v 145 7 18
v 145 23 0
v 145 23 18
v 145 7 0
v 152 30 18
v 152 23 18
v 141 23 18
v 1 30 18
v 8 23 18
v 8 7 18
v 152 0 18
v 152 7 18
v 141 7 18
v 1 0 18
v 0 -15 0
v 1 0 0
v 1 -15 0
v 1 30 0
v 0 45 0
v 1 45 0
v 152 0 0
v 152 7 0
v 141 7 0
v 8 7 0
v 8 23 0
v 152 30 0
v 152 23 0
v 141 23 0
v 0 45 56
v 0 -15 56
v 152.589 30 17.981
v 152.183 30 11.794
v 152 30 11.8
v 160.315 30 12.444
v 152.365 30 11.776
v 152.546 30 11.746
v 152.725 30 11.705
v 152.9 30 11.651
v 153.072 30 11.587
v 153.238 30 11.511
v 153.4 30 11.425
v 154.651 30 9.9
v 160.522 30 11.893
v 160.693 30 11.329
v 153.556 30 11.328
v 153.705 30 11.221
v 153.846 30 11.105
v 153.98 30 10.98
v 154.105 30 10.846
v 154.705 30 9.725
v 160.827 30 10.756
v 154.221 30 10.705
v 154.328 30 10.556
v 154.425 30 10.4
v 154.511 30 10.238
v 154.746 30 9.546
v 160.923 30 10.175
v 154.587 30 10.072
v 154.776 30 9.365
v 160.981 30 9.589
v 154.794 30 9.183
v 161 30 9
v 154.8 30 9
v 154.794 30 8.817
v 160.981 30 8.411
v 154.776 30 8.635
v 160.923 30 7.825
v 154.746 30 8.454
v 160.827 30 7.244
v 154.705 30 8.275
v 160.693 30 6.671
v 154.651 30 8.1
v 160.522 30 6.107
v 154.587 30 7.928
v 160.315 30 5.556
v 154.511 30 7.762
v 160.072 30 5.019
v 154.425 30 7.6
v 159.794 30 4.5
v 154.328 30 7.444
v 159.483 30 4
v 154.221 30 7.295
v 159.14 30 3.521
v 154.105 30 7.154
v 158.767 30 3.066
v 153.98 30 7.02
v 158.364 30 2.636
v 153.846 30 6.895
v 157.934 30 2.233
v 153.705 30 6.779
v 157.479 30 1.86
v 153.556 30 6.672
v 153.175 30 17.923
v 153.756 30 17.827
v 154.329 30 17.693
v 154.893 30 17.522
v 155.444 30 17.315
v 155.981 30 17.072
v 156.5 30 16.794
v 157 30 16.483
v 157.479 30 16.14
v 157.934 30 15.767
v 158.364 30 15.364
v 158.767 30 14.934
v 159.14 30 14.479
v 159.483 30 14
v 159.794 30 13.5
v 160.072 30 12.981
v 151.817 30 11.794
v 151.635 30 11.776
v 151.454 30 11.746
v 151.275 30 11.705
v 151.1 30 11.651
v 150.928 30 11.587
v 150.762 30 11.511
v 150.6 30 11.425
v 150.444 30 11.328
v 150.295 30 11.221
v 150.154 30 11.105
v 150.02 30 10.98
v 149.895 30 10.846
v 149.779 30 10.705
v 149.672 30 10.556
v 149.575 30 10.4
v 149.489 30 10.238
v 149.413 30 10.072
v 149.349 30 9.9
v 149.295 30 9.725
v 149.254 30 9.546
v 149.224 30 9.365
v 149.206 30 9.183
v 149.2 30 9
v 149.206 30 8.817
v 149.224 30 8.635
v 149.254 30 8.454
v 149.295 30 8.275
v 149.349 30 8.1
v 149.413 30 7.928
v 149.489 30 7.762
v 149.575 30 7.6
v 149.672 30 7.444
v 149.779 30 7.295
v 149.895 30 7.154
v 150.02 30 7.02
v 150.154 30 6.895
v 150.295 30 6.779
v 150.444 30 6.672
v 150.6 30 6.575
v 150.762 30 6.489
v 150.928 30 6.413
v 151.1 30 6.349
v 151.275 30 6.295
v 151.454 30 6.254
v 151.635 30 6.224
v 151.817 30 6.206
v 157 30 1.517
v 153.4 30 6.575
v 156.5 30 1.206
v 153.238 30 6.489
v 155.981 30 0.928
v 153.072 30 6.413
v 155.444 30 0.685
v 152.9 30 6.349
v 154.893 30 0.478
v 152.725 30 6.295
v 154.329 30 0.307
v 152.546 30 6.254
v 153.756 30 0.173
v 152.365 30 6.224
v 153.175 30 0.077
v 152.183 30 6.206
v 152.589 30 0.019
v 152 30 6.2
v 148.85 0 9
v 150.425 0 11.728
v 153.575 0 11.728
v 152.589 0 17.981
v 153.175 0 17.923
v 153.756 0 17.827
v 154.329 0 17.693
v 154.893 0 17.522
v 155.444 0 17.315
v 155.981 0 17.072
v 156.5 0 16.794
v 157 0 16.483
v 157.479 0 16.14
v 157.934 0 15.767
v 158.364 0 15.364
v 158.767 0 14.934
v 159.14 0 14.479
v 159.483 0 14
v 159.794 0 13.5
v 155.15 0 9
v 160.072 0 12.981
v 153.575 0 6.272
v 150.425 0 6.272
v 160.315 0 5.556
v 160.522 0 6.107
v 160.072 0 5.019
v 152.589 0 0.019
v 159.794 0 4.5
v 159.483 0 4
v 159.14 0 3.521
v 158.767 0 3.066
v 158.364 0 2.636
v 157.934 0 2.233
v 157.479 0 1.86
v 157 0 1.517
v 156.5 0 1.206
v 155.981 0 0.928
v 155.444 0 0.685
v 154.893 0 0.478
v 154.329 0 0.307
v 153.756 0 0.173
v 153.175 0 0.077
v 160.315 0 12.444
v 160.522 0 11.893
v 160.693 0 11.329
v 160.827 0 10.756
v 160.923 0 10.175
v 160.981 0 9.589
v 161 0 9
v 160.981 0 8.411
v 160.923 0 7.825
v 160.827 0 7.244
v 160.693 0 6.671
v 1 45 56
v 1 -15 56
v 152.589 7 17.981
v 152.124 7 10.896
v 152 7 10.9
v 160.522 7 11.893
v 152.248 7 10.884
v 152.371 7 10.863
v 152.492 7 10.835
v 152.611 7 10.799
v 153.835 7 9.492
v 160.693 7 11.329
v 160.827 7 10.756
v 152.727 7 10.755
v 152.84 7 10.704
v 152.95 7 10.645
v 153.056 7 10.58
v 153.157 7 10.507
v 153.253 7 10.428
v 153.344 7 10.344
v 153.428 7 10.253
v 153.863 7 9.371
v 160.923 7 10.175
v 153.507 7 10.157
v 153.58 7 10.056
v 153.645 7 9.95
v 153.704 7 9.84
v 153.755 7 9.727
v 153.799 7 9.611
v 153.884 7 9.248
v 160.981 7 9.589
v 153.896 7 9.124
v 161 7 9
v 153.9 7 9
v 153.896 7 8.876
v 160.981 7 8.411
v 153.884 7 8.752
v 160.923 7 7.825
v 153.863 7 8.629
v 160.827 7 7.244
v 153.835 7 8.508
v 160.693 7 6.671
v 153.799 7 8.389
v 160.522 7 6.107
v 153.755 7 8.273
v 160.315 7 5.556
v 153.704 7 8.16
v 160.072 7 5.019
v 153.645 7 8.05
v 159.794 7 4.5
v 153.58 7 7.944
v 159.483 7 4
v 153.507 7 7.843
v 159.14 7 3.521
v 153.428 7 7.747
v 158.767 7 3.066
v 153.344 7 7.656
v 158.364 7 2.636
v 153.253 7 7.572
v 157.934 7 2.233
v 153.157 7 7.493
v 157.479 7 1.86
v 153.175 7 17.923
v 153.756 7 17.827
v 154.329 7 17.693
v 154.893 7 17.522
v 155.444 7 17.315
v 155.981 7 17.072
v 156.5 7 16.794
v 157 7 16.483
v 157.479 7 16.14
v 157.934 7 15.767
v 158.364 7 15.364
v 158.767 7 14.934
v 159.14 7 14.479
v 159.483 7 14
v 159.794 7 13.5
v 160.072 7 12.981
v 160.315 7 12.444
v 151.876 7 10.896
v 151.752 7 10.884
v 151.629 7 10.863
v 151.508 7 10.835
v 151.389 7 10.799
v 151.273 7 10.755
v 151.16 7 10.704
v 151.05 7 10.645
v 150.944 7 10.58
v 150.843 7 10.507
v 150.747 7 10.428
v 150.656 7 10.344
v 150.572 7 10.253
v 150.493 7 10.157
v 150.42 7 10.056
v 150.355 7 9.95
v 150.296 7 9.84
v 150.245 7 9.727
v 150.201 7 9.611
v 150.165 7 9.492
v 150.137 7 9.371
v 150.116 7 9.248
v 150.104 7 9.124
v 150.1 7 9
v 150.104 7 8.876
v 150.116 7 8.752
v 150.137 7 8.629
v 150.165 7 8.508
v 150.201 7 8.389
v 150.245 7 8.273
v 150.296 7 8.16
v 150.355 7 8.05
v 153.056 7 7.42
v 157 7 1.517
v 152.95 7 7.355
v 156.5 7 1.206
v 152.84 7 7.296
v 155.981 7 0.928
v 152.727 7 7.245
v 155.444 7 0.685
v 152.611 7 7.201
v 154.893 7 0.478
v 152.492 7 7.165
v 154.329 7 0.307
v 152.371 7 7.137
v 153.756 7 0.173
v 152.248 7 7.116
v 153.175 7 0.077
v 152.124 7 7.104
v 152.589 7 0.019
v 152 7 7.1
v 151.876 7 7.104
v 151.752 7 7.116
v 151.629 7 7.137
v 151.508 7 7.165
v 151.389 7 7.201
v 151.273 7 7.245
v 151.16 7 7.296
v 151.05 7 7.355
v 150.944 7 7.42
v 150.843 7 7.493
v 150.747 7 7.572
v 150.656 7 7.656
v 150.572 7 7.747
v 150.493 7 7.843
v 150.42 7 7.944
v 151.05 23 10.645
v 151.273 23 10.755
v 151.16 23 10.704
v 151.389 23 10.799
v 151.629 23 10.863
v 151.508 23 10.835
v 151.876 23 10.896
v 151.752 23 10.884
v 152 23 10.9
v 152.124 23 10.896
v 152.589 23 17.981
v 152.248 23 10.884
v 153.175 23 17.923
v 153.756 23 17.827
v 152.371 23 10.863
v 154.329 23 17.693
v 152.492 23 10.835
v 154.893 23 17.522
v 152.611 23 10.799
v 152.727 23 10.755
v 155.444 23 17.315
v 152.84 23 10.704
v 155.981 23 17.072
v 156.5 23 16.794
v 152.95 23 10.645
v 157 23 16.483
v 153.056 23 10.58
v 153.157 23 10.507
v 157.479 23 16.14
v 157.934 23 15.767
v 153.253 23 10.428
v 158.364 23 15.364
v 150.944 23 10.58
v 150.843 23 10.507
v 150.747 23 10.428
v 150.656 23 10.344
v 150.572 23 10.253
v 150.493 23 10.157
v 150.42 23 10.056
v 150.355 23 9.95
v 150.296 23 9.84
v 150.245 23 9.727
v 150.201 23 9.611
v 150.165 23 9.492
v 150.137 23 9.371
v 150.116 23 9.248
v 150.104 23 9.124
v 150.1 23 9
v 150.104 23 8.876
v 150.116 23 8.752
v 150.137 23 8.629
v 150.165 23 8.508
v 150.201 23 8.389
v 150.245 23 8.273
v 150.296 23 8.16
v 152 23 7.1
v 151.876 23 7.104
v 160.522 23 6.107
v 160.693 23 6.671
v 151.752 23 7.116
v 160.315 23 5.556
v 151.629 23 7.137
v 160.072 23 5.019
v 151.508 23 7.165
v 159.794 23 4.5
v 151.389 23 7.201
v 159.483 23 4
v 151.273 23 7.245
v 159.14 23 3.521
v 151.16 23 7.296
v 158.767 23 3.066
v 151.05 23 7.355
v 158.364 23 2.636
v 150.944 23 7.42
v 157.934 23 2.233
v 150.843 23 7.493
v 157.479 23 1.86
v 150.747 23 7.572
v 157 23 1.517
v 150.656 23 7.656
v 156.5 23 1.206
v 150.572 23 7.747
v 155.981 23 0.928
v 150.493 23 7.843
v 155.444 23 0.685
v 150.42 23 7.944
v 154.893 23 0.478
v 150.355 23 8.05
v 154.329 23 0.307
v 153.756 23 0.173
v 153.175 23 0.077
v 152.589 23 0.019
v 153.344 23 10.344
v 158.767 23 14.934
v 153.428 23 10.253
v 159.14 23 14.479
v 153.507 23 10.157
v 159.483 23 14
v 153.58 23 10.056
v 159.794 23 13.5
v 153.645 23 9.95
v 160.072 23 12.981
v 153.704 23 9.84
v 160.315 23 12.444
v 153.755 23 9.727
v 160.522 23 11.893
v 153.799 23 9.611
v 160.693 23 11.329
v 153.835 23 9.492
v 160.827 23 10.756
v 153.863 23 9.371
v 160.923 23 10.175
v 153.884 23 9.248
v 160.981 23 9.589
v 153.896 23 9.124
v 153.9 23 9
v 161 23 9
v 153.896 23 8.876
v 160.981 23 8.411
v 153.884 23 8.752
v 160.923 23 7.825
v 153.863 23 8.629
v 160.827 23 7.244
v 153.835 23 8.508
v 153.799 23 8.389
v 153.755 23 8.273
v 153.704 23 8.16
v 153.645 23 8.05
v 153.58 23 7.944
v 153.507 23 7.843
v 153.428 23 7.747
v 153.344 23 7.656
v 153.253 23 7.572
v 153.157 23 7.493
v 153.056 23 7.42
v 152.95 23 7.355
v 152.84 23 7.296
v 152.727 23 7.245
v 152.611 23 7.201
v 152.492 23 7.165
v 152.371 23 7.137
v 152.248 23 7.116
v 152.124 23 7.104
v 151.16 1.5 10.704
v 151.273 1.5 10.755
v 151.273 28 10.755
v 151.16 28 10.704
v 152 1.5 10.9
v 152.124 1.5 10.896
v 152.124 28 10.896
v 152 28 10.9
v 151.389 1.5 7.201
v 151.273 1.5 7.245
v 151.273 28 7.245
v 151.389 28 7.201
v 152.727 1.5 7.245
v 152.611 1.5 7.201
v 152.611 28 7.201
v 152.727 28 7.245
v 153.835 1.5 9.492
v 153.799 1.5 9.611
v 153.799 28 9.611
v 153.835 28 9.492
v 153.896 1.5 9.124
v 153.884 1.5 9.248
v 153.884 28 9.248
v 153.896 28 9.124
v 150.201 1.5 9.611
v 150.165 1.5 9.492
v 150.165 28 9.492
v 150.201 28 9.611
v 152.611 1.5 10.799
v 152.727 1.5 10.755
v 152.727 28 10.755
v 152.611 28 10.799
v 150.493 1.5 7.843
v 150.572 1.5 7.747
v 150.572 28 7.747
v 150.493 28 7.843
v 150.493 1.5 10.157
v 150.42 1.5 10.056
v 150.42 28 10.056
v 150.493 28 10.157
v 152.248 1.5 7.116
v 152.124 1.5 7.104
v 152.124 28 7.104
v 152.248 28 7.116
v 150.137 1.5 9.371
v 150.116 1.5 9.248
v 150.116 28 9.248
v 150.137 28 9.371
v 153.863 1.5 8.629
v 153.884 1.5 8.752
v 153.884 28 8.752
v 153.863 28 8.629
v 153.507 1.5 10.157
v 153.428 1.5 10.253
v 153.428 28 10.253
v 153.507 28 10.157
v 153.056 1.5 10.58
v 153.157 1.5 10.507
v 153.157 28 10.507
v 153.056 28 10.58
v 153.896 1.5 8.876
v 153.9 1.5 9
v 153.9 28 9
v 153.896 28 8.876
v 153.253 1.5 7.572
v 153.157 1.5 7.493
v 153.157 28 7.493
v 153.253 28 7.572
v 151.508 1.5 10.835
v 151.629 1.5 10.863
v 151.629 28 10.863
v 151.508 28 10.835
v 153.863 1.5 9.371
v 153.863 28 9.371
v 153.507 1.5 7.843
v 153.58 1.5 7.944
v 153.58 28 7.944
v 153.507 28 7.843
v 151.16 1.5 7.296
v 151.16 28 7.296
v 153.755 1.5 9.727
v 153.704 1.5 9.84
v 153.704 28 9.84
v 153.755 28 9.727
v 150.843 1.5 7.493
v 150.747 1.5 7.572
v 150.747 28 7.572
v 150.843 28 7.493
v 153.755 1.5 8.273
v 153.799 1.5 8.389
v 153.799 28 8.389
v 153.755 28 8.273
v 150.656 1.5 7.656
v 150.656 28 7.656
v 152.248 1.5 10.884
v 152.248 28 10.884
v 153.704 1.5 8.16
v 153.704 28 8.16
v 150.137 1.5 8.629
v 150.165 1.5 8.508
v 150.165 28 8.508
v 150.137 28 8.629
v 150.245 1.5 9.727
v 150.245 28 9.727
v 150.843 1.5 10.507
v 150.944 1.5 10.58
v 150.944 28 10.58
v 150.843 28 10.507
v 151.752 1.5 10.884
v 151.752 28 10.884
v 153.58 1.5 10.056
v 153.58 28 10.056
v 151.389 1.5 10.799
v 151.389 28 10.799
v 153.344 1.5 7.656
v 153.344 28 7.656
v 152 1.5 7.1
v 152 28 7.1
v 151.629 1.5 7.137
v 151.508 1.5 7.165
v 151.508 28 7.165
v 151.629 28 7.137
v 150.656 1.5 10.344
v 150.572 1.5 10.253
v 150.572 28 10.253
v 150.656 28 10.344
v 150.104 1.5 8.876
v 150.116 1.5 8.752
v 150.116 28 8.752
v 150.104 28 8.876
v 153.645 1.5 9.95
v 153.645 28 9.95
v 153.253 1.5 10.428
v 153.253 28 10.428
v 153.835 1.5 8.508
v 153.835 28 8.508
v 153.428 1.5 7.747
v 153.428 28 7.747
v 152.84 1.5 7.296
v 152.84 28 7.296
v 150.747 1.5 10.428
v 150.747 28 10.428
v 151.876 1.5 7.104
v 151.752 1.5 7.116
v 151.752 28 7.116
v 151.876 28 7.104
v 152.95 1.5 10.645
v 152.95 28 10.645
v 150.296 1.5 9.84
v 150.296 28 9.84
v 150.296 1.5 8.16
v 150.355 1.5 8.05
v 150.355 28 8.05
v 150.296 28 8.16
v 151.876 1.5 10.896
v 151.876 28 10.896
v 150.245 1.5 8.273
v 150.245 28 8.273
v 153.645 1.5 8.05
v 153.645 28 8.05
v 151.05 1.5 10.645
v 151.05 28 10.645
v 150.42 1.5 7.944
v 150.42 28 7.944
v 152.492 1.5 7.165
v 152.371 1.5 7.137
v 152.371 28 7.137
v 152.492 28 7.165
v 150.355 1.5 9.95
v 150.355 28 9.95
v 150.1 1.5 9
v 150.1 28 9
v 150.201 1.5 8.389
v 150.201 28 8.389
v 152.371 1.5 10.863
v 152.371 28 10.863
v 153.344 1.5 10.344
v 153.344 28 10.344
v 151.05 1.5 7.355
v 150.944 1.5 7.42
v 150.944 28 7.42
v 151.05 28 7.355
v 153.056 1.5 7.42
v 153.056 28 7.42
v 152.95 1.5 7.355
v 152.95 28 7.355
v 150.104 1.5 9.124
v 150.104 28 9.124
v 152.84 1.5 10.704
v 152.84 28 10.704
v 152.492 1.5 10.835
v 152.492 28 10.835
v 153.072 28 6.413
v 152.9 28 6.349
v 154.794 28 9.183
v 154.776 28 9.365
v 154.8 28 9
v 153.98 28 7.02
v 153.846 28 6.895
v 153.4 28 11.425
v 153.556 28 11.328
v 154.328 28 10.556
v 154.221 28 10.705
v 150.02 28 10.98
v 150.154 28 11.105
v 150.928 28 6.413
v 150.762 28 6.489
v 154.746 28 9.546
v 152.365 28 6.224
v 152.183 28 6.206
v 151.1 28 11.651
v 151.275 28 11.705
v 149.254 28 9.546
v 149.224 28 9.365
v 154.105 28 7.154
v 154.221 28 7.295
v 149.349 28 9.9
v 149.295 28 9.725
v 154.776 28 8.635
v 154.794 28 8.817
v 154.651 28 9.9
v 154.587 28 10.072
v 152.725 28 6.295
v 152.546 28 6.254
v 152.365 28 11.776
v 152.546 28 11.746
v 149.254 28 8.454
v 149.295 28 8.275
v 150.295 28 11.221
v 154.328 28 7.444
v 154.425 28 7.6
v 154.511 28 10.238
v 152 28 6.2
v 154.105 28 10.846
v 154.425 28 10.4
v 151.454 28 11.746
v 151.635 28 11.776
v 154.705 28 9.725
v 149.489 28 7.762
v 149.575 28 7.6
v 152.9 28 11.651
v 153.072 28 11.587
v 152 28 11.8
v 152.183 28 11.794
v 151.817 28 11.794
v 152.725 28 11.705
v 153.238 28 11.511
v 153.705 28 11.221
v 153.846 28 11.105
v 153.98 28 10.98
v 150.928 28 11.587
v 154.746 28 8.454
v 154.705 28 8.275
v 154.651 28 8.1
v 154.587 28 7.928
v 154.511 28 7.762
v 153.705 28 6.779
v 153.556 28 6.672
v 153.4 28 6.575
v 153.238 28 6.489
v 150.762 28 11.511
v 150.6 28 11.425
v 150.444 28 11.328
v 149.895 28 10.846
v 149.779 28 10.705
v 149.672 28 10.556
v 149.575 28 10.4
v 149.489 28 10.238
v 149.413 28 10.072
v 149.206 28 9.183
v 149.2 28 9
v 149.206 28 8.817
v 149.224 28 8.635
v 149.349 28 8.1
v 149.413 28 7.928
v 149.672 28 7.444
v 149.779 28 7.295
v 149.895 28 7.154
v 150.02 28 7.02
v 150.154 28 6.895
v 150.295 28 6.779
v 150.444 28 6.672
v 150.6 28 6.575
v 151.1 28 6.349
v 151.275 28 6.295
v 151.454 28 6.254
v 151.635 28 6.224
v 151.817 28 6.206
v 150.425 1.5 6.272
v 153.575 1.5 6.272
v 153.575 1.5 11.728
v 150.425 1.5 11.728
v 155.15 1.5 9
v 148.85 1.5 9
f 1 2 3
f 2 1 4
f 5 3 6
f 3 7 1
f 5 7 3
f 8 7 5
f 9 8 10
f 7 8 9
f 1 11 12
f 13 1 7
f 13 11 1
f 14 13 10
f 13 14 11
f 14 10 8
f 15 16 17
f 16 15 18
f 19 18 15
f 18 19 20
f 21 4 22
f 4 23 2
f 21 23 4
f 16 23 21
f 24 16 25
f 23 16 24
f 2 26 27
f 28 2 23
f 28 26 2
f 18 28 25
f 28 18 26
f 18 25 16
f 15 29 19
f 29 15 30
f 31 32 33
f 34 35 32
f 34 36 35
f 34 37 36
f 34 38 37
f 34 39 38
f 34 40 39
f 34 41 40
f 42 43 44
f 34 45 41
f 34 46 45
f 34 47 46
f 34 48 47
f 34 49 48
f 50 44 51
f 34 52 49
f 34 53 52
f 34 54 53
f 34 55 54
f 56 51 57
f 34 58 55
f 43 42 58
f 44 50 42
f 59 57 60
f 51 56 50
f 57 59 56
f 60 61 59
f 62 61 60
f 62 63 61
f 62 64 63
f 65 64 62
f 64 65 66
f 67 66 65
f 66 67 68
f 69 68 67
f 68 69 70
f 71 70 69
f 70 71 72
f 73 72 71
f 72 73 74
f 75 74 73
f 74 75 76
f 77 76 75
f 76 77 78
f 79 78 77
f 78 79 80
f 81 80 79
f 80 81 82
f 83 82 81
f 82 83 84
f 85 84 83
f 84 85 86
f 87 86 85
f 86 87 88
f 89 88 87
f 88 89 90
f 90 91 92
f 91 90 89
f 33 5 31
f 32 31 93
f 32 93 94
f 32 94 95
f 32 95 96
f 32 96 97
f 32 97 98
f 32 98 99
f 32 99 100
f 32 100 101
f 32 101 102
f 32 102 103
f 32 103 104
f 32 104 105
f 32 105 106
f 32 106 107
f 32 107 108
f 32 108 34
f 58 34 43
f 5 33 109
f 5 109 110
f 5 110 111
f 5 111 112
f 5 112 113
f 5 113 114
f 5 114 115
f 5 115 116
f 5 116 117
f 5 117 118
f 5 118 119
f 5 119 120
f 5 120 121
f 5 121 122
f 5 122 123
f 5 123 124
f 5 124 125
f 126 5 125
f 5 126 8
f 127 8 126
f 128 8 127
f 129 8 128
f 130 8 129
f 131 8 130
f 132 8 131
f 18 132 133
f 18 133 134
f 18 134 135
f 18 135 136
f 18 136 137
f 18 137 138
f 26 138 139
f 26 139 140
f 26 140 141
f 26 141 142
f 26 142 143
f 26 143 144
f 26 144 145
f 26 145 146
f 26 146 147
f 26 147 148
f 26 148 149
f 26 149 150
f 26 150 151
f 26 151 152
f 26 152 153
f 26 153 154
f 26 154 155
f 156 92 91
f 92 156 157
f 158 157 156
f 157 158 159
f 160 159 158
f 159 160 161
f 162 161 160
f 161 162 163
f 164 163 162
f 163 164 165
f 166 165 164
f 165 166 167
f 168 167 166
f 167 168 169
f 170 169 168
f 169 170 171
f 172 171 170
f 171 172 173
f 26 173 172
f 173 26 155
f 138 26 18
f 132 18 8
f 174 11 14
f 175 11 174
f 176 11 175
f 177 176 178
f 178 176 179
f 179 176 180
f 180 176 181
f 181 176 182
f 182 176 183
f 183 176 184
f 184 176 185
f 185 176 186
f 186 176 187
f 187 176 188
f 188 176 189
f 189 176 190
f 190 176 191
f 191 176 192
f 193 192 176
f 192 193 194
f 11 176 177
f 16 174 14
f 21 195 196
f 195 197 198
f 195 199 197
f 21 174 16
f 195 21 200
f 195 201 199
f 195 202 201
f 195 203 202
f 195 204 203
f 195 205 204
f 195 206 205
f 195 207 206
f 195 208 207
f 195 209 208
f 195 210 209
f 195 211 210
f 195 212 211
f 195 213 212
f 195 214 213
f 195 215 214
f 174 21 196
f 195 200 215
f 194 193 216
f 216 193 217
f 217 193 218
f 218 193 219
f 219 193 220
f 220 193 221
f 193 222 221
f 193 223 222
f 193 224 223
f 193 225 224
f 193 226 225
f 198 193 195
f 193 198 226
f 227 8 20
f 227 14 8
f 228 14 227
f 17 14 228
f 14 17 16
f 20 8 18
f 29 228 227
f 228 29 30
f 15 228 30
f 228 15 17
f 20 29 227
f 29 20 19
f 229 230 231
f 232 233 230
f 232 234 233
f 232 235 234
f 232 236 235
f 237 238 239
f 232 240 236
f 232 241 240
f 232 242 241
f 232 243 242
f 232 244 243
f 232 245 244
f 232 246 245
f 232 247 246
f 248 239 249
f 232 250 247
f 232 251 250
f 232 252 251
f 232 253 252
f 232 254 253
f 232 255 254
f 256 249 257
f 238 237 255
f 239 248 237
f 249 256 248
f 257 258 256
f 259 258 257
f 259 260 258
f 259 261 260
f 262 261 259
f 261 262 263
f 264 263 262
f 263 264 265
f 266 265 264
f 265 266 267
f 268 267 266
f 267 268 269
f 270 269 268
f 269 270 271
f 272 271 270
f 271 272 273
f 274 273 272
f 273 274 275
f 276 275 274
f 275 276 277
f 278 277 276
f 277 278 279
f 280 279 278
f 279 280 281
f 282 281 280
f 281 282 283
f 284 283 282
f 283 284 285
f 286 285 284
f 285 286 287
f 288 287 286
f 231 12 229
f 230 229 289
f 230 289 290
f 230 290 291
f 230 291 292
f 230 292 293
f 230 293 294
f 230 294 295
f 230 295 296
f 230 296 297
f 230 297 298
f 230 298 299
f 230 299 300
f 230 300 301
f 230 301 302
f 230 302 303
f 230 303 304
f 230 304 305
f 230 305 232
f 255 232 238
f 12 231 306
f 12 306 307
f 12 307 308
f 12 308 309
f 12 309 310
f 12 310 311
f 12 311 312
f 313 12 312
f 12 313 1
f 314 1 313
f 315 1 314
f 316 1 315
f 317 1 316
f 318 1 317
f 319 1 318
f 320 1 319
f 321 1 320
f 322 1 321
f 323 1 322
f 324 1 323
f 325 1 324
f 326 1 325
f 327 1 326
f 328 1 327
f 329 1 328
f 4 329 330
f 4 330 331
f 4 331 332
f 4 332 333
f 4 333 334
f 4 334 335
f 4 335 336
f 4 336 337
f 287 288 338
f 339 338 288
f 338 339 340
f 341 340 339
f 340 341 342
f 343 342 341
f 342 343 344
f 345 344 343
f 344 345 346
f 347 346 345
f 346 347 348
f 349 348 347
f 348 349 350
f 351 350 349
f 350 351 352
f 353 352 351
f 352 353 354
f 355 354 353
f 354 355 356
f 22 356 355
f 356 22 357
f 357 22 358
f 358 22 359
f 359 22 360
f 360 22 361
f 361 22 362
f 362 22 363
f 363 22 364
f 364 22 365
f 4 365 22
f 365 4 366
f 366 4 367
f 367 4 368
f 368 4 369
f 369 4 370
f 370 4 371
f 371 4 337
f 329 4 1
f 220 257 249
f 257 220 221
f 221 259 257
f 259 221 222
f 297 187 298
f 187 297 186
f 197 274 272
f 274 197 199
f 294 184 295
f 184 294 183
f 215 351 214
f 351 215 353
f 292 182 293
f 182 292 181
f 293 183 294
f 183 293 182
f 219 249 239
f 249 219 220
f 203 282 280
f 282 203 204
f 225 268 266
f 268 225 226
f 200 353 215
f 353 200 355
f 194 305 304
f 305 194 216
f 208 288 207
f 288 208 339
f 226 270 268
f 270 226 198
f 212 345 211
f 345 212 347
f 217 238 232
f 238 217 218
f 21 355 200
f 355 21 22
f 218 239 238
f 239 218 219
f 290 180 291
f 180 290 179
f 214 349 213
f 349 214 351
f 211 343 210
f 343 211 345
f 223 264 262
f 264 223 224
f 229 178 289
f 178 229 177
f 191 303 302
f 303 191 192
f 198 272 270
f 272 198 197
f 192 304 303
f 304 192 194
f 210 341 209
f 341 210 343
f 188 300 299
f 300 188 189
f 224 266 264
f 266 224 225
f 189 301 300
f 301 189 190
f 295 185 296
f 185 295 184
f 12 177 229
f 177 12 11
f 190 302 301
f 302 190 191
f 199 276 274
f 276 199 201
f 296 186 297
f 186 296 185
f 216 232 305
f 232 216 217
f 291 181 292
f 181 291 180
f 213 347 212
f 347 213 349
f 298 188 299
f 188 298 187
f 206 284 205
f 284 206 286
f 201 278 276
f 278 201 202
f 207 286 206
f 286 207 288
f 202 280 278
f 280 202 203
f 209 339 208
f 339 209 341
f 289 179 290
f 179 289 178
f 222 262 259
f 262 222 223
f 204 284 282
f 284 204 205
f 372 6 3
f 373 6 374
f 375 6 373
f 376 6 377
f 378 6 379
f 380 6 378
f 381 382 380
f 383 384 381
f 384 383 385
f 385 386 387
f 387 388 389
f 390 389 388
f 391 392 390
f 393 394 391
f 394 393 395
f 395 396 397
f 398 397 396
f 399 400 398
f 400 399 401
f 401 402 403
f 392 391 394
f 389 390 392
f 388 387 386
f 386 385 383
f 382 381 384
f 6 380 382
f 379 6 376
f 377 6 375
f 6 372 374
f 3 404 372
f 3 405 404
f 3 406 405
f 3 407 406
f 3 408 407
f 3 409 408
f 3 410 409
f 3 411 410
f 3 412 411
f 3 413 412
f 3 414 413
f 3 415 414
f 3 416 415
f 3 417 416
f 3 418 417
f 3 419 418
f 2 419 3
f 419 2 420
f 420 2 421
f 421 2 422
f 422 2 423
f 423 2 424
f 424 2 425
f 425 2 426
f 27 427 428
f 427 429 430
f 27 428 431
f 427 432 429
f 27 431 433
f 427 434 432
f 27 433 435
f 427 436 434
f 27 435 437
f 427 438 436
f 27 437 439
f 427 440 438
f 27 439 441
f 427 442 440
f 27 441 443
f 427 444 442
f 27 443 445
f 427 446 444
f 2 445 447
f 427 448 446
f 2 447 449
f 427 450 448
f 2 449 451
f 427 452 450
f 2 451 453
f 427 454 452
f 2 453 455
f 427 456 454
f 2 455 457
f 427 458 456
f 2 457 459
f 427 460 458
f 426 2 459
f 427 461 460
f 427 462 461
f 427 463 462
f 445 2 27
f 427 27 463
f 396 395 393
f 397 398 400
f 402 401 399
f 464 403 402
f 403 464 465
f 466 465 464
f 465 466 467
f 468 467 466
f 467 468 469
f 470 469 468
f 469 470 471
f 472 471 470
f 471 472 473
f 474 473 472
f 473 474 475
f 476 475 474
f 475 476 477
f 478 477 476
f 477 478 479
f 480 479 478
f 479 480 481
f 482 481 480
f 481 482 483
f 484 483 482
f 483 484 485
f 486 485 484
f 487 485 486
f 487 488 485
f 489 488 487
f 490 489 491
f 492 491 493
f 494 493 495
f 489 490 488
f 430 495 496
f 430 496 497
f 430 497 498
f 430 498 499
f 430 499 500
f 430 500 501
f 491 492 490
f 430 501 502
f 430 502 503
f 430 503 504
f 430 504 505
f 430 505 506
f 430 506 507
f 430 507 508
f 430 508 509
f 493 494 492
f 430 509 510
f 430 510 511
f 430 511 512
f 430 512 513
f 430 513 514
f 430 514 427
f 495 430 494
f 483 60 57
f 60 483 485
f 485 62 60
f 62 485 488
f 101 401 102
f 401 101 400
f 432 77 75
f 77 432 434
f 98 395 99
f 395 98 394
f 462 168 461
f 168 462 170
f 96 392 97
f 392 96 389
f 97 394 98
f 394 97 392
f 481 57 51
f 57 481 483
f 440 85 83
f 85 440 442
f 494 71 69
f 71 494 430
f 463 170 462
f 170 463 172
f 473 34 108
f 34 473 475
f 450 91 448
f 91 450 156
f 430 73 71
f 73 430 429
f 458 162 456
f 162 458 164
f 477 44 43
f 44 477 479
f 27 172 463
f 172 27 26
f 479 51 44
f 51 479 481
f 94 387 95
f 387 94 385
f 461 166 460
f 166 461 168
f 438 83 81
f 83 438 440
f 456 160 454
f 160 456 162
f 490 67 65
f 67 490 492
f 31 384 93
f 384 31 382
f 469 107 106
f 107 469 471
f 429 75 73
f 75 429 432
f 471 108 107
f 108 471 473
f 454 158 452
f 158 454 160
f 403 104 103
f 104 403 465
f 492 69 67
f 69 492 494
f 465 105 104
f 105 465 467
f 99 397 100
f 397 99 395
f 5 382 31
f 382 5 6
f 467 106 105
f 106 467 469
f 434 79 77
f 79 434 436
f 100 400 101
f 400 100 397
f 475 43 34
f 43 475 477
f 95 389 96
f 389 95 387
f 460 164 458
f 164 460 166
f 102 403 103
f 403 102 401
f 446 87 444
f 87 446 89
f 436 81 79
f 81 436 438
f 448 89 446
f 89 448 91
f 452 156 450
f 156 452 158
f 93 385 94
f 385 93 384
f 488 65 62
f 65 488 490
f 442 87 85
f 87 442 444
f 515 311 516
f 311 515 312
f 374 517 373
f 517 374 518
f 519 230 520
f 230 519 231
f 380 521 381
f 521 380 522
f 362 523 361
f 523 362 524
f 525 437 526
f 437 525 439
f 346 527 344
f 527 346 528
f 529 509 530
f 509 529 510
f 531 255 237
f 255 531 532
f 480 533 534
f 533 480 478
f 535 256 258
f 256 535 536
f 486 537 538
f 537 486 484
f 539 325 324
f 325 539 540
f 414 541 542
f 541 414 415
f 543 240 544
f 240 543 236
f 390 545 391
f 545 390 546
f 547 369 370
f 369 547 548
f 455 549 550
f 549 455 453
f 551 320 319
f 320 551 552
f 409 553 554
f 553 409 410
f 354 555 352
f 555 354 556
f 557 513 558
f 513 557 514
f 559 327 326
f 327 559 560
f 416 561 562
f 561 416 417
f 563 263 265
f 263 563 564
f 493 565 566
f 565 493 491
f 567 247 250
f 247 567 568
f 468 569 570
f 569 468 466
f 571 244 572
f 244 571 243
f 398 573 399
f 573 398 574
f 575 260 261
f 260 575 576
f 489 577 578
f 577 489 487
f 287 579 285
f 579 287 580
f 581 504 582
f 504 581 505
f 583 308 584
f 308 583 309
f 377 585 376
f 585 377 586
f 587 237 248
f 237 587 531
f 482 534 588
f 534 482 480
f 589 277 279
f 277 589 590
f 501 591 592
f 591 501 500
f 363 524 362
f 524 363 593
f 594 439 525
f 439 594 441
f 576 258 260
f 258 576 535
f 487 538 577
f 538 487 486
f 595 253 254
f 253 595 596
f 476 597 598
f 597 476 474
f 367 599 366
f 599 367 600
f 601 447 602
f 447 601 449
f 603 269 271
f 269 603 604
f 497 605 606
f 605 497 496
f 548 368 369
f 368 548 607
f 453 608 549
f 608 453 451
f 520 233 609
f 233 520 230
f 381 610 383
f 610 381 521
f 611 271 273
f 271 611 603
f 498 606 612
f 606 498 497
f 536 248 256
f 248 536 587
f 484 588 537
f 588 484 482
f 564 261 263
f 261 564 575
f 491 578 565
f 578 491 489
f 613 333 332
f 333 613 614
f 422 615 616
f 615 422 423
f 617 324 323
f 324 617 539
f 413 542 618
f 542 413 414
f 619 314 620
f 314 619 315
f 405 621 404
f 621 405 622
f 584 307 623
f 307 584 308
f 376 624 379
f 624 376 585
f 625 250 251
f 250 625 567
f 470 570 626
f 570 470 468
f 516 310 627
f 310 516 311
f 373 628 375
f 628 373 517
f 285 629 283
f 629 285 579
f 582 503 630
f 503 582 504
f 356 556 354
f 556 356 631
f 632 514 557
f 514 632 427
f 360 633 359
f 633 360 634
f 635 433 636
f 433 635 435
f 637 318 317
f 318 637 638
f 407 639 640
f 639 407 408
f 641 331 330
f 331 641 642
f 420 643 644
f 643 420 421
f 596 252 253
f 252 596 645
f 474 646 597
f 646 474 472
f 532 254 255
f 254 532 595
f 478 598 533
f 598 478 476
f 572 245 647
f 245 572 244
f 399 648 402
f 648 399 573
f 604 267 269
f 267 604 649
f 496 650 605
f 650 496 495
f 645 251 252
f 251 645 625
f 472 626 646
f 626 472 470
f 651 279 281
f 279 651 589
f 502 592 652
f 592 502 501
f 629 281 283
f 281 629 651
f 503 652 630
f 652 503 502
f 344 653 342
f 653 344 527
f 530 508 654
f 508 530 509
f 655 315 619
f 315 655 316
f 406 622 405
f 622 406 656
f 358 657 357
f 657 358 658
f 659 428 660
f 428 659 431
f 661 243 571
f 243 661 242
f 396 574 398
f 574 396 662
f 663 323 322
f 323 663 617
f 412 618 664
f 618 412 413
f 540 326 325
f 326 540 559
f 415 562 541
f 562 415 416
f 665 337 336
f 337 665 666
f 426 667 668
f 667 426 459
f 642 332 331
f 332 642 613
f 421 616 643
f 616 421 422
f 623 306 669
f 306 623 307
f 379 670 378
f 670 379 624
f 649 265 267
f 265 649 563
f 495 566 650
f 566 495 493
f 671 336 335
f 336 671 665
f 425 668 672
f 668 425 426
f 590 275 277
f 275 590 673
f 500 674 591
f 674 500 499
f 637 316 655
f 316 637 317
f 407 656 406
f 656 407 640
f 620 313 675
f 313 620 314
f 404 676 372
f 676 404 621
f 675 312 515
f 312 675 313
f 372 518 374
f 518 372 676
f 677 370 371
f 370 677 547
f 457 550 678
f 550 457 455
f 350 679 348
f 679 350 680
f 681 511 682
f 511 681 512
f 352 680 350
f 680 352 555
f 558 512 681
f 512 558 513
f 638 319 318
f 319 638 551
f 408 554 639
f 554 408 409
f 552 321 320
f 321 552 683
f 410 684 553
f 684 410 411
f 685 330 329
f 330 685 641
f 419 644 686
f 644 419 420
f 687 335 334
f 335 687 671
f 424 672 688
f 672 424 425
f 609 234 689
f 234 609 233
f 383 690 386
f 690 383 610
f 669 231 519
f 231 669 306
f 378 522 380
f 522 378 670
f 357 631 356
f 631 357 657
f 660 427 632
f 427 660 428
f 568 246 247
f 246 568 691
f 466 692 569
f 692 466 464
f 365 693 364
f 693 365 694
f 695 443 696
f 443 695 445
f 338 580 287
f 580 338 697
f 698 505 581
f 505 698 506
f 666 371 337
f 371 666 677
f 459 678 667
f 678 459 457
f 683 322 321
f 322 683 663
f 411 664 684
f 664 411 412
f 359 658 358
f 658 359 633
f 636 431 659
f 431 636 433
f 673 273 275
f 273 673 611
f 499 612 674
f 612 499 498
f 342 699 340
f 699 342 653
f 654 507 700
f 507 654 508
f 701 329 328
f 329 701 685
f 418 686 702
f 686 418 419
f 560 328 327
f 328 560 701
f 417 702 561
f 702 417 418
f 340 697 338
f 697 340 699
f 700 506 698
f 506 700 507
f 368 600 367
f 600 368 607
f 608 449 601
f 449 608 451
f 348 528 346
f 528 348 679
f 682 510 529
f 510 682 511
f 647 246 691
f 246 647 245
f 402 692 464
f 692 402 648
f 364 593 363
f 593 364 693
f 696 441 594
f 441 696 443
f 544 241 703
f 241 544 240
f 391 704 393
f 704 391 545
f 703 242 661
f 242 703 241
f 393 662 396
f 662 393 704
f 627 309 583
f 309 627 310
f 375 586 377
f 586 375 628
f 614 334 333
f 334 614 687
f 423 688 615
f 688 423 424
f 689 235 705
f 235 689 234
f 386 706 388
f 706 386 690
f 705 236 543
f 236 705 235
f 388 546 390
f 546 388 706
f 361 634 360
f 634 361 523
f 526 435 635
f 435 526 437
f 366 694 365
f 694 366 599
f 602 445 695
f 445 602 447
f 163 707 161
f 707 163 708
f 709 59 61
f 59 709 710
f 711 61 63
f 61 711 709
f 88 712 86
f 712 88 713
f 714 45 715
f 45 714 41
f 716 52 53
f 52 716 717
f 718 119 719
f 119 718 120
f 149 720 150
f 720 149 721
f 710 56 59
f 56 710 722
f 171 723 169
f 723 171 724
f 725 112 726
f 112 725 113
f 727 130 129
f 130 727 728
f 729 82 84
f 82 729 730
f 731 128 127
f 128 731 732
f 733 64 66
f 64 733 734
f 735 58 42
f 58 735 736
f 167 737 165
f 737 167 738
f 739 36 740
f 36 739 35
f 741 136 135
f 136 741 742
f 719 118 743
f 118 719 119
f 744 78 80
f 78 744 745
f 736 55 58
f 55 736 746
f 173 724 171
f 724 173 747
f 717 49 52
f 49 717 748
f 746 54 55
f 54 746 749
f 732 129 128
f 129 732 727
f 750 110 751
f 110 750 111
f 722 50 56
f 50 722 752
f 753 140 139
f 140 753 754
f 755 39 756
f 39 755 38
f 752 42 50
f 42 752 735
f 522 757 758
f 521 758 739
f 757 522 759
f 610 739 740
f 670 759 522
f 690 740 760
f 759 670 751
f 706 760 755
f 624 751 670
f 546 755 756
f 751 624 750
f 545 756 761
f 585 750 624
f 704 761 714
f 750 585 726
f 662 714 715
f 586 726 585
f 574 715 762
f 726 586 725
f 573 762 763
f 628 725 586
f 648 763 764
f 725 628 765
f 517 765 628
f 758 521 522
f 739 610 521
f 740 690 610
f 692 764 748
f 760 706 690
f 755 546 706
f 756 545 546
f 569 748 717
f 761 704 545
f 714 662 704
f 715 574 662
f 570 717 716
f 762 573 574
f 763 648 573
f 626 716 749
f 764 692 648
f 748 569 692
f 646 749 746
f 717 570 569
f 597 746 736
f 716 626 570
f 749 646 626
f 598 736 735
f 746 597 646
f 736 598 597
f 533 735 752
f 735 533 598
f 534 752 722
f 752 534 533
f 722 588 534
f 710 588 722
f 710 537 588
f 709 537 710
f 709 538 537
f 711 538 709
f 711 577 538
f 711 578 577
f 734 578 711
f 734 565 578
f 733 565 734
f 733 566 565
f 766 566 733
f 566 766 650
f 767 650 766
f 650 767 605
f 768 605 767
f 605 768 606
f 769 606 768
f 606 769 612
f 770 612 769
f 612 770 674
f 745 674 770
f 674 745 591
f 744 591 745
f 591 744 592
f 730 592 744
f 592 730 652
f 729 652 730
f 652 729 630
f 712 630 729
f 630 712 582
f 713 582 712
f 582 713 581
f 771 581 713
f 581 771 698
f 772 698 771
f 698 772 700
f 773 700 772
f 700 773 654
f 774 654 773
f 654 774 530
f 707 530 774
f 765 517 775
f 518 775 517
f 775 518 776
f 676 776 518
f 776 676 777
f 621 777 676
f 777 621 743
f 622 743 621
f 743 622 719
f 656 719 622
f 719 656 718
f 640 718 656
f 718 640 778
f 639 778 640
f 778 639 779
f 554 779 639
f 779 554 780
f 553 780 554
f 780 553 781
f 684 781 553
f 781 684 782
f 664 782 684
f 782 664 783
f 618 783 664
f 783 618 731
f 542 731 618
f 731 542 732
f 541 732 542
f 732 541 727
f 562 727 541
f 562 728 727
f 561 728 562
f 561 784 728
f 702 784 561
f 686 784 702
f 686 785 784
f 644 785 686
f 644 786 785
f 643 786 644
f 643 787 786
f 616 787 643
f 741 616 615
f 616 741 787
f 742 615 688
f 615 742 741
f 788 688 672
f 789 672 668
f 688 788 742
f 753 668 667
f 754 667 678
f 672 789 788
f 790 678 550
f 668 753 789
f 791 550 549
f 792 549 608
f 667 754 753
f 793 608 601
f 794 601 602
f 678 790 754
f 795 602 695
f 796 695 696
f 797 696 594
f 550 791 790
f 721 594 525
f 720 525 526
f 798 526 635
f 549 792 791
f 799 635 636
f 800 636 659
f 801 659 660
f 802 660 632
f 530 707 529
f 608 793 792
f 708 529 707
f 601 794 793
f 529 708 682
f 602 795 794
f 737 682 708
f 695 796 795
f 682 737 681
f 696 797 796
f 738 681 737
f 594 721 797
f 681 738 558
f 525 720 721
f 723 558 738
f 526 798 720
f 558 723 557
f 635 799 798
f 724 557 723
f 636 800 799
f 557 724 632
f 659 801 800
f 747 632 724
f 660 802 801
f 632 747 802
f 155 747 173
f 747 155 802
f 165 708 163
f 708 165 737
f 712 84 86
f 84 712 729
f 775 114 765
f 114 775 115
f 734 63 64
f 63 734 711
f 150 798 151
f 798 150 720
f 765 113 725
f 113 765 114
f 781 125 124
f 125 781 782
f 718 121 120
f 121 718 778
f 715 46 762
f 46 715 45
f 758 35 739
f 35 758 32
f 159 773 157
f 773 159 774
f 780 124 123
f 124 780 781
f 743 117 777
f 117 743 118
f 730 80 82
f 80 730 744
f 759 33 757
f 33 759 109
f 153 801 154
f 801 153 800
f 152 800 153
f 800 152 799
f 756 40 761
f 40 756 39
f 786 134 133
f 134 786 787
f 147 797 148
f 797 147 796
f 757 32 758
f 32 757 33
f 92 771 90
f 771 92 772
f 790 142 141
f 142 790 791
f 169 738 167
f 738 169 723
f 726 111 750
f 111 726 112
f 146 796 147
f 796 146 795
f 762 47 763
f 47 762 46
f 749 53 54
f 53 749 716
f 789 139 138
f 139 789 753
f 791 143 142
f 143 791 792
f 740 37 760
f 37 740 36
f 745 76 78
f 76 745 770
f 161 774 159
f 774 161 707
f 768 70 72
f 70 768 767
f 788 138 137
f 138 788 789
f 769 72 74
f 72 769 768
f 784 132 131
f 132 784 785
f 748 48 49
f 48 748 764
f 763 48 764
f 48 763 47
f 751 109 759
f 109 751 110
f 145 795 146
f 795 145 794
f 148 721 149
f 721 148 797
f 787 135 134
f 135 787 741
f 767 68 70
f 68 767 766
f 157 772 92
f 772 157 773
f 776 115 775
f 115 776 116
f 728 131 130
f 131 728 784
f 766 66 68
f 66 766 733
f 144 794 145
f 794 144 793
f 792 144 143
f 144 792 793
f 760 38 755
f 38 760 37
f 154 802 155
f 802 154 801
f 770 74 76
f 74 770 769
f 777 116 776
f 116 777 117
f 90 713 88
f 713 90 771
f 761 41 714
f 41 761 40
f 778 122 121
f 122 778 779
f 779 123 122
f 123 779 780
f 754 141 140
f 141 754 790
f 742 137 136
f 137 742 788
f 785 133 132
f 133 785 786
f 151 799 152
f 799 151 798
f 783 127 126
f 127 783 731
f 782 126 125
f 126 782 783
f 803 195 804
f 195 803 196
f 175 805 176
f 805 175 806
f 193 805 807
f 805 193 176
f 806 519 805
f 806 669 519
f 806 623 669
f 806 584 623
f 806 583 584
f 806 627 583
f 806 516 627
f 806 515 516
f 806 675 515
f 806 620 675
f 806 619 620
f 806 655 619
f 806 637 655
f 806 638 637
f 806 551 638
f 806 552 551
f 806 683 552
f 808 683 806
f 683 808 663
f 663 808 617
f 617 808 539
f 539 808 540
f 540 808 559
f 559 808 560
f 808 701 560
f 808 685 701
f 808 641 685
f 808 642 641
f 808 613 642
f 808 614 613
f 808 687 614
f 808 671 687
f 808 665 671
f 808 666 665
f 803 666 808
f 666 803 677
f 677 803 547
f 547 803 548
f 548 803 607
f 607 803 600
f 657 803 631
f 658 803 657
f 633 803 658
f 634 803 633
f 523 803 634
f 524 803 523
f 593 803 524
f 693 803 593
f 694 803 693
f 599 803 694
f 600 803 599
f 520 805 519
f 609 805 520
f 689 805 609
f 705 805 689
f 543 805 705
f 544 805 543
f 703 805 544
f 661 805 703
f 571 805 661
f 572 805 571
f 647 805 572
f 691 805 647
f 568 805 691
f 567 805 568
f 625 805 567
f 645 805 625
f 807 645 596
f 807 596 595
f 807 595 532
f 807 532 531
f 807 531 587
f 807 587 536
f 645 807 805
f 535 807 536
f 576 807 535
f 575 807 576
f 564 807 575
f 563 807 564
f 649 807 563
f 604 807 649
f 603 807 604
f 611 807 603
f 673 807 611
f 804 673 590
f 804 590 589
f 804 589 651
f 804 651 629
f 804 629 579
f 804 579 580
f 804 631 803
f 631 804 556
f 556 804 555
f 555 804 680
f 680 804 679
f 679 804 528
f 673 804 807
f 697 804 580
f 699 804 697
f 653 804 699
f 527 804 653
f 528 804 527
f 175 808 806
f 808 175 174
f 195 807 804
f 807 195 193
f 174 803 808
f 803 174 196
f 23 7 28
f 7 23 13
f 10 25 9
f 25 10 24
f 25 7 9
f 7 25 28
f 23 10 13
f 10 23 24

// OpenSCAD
$fn=96;

width = 145;
depth = 30;
height = 18;

mwidth = 7;
mdepth = 7;
mheight = height;
mrad = height/2;

hrad = 3;
mhrad = 1.9;

difference() {
  union() {
    cube([ width, depth, height ]);
    mirror([ 0, 0, 1 ])
    translate([ 0, -depth/2, 0 ])
    rotate([ 0, 90, 0 ])
    cube([ 56, depth*2, 1 ]);
    translate([ width, 0, 0 ])
      cube([ mwidth, mdepth, mheight ]);
    translate([ width+mwidth, mdepth, mheight/2 ])
    rotate([ 90, 0, 0 ])
      cylinder( h = mwidth, r = mrad );
    translate([ width, depth-mdepth, 0 ])
      cube([ mwidth, mdepth, mheight ]);
    translate([ width+mwidth, depth, mheight/2 ])
    rotate([ 90, 0, 0 ])
      cylinder( h = mwidth, r = mrad );
  }
  translate([ width+mwidth, depth, height/2 ])
    rotate([ 90, 0, 0])
    cylinder( h = depth, r = mhrad );
  translate([ width+mwidth, depth, height/2 ])
    rotate([ 90, 0, 0 ])
    cylinder( h = 2, r = 2.8 );
  translate([ width+mwidth, 1.5, height/2 ])
    rotate([ 90, 0, 0 ])
    cylinder( h = 2, r = 3.15, $fn=6 );
  translate([ 8, 7, 0 ])
  cube([ width-12, 16, 26 ]);
  /*
  translate([ 8.1, 44, 10 ])
  rotate([ 90, 0, 0 ])
  cylinder( h = depth*2+1, r = 8.1 );
  
*/
}
